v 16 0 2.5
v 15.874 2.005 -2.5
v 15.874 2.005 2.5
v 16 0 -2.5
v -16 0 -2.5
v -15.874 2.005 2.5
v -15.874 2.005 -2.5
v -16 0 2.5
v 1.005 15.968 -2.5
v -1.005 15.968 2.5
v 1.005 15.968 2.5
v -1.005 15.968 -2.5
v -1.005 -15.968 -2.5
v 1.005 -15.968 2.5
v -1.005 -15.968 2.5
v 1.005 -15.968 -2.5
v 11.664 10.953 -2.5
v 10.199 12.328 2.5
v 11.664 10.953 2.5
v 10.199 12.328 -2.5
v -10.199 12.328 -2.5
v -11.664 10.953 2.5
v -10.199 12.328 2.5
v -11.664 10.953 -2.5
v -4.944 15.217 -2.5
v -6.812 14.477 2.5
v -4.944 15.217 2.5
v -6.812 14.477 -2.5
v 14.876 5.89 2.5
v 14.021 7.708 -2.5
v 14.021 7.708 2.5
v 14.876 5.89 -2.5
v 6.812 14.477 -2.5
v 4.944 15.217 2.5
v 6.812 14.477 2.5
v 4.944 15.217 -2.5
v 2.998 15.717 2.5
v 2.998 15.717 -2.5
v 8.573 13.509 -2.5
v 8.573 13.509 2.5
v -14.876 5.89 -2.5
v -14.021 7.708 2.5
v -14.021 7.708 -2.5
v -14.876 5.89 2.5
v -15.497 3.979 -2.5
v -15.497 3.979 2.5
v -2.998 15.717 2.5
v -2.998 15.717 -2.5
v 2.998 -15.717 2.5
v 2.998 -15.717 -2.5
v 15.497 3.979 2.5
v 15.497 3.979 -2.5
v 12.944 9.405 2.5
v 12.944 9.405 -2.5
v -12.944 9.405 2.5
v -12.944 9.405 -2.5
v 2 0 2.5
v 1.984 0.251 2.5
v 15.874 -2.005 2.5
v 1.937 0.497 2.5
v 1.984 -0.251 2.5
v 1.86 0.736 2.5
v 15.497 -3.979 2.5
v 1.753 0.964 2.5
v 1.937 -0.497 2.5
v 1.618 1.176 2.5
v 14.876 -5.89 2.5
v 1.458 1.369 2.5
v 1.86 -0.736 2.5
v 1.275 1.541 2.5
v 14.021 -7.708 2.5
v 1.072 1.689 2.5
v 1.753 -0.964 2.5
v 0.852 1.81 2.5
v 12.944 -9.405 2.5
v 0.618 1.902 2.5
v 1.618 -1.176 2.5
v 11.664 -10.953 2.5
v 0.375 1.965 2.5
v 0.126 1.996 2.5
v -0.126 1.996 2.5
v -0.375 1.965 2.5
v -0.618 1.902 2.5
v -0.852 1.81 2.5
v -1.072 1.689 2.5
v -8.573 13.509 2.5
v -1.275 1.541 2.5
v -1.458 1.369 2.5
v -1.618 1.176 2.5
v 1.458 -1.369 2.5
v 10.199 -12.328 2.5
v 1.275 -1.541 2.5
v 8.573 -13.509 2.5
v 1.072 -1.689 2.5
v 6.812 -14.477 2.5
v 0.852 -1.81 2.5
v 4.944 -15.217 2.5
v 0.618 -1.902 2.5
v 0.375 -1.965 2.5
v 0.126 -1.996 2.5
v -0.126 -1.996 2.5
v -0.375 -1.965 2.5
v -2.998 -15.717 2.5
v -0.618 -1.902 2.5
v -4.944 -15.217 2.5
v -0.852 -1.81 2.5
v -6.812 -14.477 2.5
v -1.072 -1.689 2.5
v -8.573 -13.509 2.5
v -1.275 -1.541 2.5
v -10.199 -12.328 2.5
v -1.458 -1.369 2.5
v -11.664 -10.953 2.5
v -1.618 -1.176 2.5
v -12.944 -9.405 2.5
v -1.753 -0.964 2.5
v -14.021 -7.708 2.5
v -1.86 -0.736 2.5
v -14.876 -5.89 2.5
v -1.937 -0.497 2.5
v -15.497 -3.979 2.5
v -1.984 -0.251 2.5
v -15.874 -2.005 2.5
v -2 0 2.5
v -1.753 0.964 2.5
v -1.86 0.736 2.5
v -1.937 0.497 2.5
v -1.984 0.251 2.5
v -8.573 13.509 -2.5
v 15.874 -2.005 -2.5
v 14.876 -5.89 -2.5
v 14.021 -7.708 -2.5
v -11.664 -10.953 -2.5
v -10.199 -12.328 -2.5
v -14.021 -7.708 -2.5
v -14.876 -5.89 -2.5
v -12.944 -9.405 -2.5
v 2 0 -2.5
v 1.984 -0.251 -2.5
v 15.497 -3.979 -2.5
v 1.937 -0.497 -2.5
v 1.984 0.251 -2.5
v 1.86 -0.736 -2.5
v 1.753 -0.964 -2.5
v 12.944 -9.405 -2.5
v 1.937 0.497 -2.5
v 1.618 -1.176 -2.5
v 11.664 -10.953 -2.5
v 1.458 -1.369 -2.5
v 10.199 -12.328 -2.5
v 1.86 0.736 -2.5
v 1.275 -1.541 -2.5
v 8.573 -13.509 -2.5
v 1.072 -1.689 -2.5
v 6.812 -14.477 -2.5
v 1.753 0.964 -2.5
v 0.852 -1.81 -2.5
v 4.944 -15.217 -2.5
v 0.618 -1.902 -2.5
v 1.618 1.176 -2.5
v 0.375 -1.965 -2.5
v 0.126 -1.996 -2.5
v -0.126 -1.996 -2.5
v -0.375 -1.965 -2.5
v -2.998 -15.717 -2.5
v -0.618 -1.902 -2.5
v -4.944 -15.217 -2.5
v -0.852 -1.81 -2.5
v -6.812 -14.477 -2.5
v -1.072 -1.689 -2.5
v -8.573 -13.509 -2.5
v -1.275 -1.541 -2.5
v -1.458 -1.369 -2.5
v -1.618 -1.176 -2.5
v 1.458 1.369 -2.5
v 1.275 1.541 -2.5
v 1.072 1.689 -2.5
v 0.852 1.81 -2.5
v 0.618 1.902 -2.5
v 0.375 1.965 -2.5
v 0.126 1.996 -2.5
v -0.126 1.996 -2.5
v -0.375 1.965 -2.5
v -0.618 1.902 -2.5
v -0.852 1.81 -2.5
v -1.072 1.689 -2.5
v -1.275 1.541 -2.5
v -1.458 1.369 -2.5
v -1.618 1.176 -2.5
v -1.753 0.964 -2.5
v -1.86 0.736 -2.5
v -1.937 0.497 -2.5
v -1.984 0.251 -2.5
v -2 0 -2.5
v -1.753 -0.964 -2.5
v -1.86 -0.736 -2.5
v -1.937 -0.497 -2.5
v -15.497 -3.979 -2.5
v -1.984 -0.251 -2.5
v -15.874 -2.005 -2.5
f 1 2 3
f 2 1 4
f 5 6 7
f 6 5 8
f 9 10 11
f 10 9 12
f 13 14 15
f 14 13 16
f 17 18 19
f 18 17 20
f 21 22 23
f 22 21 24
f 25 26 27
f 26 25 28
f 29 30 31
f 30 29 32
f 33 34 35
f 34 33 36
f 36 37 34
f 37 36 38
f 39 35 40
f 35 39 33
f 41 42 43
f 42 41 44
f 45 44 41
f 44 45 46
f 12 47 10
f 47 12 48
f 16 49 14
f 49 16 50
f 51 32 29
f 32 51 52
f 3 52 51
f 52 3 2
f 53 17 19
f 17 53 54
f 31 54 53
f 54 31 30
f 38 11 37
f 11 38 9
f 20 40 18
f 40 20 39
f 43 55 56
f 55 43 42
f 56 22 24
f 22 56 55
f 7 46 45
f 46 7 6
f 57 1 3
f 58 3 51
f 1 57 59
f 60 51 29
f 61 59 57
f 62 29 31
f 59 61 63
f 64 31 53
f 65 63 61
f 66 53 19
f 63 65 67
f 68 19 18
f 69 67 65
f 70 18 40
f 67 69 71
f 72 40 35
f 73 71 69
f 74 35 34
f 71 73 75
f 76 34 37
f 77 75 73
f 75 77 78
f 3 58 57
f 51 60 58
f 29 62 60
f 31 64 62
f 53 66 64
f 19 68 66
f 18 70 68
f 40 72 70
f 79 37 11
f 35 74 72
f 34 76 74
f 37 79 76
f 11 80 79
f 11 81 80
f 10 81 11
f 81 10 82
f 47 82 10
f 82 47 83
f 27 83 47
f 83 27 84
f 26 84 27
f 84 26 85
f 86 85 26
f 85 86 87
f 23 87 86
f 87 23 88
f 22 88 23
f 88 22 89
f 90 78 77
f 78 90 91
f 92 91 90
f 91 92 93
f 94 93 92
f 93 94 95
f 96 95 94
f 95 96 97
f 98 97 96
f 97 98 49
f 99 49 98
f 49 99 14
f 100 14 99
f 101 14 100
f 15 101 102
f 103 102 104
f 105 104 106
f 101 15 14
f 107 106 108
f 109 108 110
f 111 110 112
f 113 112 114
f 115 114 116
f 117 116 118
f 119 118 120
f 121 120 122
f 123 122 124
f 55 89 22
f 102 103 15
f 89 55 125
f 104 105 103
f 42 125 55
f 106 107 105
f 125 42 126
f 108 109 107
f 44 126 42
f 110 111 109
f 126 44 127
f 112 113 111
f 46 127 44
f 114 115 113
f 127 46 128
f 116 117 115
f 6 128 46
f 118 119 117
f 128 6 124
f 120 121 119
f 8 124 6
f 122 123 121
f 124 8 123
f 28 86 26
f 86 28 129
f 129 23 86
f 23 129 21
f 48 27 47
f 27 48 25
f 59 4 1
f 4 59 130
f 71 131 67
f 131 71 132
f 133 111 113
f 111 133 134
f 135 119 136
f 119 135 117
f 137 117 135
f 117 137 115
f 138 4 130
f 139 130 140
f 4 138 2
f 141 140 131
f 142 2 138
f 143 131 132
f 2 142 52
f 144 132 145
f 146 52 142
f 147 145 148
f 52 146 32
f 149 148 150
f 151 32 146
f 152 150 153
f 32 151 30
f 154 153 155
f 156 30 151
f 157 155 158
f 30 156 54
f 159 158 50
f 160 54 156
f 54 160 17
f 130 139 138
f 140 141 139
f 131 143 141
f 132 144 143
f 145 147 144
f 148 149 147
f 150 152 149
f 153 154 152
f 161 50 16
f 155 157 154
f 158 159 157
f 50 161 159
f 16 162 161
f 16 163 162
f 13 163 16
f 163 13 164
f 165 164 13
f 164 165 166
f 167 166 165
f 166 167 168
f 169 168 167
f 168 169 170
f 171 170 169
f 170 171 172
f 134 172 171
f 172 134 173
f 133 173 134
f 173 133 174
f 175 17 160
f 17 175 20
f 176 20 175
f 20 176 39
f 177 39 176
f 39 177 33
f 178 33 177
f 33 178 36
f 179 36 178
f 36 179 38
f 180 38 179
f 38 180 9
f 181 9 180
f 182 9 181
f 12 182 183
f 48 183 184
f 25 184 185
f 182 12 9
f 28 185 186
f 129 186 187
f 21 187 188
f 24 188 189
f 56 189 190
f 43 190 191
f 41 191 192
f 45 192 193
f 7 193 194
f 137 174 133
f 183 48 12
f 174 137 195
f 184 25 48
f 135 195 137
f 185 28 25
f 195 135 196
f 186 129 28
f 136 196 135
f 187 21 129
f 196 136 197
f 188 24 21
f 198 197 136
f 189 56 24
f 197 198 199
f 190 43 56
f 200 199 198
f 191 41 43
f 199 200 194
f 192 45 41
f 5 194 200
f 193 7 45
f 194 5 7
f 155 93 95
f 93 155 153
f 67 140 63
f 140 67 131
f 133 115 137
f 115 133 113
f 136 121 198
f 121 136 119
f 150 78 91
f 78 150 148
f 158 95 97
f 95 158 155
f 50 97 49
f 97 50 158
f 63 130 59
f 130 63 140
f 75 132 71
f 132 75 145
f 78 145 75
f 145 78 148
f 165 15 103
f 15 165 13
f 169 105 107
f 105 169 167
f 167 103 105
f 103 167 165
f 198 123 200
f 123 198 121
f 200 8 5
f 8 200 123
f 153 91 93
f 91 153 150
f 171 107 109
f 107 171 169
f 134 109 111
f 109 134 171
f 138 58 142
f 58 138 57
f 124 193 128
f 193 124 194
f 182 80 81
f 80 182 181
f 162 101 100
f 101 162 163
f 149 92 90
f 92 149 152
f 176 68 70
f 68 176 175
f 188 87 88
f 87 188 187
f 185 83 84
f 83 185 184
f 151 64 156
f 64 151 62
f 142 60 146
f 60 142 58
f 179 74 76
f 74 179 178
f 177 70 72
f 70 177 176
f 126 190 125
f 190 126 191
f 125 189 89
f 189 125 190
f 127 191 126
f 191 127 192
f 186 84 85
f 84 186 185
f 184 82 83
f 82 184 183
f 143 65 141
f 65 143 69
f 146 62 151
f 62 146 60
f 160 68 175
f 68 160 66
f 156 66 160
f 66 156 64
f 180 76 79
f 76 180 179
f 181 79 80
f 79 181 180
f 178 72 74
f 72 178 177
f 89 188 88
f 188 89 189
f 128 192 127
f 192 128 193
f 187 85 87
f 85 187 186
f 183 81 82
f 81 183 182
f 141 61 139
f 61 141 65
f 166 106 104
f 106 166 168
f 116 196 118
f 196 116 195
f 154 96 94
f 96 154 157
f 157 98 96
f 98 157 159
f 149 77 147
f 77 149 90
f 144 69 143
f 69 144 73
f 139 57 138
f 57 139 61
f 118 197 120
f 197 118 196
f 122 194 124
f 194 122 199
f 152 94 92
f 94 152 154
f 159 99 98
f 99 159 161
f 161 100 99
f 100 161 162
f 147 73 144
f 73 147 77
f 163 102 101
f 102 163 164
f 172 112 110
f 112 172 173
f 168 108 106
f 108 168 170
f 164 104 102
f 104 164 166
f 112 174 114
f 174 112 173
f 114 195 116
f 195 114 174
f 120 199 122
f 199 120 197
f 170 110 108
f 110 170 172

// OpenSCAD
$fn = 50;


difference() {
	union() {
		translate(v = [0, 0, -2.5000000000]) {
			cylinder(h = 5, r = 16.0000000000);
		}
	}
	union() {
		translate(v = [0, 0, -100.0000000000]) {
			cylinder(h = 200, r = 2);
		}
	}
}
